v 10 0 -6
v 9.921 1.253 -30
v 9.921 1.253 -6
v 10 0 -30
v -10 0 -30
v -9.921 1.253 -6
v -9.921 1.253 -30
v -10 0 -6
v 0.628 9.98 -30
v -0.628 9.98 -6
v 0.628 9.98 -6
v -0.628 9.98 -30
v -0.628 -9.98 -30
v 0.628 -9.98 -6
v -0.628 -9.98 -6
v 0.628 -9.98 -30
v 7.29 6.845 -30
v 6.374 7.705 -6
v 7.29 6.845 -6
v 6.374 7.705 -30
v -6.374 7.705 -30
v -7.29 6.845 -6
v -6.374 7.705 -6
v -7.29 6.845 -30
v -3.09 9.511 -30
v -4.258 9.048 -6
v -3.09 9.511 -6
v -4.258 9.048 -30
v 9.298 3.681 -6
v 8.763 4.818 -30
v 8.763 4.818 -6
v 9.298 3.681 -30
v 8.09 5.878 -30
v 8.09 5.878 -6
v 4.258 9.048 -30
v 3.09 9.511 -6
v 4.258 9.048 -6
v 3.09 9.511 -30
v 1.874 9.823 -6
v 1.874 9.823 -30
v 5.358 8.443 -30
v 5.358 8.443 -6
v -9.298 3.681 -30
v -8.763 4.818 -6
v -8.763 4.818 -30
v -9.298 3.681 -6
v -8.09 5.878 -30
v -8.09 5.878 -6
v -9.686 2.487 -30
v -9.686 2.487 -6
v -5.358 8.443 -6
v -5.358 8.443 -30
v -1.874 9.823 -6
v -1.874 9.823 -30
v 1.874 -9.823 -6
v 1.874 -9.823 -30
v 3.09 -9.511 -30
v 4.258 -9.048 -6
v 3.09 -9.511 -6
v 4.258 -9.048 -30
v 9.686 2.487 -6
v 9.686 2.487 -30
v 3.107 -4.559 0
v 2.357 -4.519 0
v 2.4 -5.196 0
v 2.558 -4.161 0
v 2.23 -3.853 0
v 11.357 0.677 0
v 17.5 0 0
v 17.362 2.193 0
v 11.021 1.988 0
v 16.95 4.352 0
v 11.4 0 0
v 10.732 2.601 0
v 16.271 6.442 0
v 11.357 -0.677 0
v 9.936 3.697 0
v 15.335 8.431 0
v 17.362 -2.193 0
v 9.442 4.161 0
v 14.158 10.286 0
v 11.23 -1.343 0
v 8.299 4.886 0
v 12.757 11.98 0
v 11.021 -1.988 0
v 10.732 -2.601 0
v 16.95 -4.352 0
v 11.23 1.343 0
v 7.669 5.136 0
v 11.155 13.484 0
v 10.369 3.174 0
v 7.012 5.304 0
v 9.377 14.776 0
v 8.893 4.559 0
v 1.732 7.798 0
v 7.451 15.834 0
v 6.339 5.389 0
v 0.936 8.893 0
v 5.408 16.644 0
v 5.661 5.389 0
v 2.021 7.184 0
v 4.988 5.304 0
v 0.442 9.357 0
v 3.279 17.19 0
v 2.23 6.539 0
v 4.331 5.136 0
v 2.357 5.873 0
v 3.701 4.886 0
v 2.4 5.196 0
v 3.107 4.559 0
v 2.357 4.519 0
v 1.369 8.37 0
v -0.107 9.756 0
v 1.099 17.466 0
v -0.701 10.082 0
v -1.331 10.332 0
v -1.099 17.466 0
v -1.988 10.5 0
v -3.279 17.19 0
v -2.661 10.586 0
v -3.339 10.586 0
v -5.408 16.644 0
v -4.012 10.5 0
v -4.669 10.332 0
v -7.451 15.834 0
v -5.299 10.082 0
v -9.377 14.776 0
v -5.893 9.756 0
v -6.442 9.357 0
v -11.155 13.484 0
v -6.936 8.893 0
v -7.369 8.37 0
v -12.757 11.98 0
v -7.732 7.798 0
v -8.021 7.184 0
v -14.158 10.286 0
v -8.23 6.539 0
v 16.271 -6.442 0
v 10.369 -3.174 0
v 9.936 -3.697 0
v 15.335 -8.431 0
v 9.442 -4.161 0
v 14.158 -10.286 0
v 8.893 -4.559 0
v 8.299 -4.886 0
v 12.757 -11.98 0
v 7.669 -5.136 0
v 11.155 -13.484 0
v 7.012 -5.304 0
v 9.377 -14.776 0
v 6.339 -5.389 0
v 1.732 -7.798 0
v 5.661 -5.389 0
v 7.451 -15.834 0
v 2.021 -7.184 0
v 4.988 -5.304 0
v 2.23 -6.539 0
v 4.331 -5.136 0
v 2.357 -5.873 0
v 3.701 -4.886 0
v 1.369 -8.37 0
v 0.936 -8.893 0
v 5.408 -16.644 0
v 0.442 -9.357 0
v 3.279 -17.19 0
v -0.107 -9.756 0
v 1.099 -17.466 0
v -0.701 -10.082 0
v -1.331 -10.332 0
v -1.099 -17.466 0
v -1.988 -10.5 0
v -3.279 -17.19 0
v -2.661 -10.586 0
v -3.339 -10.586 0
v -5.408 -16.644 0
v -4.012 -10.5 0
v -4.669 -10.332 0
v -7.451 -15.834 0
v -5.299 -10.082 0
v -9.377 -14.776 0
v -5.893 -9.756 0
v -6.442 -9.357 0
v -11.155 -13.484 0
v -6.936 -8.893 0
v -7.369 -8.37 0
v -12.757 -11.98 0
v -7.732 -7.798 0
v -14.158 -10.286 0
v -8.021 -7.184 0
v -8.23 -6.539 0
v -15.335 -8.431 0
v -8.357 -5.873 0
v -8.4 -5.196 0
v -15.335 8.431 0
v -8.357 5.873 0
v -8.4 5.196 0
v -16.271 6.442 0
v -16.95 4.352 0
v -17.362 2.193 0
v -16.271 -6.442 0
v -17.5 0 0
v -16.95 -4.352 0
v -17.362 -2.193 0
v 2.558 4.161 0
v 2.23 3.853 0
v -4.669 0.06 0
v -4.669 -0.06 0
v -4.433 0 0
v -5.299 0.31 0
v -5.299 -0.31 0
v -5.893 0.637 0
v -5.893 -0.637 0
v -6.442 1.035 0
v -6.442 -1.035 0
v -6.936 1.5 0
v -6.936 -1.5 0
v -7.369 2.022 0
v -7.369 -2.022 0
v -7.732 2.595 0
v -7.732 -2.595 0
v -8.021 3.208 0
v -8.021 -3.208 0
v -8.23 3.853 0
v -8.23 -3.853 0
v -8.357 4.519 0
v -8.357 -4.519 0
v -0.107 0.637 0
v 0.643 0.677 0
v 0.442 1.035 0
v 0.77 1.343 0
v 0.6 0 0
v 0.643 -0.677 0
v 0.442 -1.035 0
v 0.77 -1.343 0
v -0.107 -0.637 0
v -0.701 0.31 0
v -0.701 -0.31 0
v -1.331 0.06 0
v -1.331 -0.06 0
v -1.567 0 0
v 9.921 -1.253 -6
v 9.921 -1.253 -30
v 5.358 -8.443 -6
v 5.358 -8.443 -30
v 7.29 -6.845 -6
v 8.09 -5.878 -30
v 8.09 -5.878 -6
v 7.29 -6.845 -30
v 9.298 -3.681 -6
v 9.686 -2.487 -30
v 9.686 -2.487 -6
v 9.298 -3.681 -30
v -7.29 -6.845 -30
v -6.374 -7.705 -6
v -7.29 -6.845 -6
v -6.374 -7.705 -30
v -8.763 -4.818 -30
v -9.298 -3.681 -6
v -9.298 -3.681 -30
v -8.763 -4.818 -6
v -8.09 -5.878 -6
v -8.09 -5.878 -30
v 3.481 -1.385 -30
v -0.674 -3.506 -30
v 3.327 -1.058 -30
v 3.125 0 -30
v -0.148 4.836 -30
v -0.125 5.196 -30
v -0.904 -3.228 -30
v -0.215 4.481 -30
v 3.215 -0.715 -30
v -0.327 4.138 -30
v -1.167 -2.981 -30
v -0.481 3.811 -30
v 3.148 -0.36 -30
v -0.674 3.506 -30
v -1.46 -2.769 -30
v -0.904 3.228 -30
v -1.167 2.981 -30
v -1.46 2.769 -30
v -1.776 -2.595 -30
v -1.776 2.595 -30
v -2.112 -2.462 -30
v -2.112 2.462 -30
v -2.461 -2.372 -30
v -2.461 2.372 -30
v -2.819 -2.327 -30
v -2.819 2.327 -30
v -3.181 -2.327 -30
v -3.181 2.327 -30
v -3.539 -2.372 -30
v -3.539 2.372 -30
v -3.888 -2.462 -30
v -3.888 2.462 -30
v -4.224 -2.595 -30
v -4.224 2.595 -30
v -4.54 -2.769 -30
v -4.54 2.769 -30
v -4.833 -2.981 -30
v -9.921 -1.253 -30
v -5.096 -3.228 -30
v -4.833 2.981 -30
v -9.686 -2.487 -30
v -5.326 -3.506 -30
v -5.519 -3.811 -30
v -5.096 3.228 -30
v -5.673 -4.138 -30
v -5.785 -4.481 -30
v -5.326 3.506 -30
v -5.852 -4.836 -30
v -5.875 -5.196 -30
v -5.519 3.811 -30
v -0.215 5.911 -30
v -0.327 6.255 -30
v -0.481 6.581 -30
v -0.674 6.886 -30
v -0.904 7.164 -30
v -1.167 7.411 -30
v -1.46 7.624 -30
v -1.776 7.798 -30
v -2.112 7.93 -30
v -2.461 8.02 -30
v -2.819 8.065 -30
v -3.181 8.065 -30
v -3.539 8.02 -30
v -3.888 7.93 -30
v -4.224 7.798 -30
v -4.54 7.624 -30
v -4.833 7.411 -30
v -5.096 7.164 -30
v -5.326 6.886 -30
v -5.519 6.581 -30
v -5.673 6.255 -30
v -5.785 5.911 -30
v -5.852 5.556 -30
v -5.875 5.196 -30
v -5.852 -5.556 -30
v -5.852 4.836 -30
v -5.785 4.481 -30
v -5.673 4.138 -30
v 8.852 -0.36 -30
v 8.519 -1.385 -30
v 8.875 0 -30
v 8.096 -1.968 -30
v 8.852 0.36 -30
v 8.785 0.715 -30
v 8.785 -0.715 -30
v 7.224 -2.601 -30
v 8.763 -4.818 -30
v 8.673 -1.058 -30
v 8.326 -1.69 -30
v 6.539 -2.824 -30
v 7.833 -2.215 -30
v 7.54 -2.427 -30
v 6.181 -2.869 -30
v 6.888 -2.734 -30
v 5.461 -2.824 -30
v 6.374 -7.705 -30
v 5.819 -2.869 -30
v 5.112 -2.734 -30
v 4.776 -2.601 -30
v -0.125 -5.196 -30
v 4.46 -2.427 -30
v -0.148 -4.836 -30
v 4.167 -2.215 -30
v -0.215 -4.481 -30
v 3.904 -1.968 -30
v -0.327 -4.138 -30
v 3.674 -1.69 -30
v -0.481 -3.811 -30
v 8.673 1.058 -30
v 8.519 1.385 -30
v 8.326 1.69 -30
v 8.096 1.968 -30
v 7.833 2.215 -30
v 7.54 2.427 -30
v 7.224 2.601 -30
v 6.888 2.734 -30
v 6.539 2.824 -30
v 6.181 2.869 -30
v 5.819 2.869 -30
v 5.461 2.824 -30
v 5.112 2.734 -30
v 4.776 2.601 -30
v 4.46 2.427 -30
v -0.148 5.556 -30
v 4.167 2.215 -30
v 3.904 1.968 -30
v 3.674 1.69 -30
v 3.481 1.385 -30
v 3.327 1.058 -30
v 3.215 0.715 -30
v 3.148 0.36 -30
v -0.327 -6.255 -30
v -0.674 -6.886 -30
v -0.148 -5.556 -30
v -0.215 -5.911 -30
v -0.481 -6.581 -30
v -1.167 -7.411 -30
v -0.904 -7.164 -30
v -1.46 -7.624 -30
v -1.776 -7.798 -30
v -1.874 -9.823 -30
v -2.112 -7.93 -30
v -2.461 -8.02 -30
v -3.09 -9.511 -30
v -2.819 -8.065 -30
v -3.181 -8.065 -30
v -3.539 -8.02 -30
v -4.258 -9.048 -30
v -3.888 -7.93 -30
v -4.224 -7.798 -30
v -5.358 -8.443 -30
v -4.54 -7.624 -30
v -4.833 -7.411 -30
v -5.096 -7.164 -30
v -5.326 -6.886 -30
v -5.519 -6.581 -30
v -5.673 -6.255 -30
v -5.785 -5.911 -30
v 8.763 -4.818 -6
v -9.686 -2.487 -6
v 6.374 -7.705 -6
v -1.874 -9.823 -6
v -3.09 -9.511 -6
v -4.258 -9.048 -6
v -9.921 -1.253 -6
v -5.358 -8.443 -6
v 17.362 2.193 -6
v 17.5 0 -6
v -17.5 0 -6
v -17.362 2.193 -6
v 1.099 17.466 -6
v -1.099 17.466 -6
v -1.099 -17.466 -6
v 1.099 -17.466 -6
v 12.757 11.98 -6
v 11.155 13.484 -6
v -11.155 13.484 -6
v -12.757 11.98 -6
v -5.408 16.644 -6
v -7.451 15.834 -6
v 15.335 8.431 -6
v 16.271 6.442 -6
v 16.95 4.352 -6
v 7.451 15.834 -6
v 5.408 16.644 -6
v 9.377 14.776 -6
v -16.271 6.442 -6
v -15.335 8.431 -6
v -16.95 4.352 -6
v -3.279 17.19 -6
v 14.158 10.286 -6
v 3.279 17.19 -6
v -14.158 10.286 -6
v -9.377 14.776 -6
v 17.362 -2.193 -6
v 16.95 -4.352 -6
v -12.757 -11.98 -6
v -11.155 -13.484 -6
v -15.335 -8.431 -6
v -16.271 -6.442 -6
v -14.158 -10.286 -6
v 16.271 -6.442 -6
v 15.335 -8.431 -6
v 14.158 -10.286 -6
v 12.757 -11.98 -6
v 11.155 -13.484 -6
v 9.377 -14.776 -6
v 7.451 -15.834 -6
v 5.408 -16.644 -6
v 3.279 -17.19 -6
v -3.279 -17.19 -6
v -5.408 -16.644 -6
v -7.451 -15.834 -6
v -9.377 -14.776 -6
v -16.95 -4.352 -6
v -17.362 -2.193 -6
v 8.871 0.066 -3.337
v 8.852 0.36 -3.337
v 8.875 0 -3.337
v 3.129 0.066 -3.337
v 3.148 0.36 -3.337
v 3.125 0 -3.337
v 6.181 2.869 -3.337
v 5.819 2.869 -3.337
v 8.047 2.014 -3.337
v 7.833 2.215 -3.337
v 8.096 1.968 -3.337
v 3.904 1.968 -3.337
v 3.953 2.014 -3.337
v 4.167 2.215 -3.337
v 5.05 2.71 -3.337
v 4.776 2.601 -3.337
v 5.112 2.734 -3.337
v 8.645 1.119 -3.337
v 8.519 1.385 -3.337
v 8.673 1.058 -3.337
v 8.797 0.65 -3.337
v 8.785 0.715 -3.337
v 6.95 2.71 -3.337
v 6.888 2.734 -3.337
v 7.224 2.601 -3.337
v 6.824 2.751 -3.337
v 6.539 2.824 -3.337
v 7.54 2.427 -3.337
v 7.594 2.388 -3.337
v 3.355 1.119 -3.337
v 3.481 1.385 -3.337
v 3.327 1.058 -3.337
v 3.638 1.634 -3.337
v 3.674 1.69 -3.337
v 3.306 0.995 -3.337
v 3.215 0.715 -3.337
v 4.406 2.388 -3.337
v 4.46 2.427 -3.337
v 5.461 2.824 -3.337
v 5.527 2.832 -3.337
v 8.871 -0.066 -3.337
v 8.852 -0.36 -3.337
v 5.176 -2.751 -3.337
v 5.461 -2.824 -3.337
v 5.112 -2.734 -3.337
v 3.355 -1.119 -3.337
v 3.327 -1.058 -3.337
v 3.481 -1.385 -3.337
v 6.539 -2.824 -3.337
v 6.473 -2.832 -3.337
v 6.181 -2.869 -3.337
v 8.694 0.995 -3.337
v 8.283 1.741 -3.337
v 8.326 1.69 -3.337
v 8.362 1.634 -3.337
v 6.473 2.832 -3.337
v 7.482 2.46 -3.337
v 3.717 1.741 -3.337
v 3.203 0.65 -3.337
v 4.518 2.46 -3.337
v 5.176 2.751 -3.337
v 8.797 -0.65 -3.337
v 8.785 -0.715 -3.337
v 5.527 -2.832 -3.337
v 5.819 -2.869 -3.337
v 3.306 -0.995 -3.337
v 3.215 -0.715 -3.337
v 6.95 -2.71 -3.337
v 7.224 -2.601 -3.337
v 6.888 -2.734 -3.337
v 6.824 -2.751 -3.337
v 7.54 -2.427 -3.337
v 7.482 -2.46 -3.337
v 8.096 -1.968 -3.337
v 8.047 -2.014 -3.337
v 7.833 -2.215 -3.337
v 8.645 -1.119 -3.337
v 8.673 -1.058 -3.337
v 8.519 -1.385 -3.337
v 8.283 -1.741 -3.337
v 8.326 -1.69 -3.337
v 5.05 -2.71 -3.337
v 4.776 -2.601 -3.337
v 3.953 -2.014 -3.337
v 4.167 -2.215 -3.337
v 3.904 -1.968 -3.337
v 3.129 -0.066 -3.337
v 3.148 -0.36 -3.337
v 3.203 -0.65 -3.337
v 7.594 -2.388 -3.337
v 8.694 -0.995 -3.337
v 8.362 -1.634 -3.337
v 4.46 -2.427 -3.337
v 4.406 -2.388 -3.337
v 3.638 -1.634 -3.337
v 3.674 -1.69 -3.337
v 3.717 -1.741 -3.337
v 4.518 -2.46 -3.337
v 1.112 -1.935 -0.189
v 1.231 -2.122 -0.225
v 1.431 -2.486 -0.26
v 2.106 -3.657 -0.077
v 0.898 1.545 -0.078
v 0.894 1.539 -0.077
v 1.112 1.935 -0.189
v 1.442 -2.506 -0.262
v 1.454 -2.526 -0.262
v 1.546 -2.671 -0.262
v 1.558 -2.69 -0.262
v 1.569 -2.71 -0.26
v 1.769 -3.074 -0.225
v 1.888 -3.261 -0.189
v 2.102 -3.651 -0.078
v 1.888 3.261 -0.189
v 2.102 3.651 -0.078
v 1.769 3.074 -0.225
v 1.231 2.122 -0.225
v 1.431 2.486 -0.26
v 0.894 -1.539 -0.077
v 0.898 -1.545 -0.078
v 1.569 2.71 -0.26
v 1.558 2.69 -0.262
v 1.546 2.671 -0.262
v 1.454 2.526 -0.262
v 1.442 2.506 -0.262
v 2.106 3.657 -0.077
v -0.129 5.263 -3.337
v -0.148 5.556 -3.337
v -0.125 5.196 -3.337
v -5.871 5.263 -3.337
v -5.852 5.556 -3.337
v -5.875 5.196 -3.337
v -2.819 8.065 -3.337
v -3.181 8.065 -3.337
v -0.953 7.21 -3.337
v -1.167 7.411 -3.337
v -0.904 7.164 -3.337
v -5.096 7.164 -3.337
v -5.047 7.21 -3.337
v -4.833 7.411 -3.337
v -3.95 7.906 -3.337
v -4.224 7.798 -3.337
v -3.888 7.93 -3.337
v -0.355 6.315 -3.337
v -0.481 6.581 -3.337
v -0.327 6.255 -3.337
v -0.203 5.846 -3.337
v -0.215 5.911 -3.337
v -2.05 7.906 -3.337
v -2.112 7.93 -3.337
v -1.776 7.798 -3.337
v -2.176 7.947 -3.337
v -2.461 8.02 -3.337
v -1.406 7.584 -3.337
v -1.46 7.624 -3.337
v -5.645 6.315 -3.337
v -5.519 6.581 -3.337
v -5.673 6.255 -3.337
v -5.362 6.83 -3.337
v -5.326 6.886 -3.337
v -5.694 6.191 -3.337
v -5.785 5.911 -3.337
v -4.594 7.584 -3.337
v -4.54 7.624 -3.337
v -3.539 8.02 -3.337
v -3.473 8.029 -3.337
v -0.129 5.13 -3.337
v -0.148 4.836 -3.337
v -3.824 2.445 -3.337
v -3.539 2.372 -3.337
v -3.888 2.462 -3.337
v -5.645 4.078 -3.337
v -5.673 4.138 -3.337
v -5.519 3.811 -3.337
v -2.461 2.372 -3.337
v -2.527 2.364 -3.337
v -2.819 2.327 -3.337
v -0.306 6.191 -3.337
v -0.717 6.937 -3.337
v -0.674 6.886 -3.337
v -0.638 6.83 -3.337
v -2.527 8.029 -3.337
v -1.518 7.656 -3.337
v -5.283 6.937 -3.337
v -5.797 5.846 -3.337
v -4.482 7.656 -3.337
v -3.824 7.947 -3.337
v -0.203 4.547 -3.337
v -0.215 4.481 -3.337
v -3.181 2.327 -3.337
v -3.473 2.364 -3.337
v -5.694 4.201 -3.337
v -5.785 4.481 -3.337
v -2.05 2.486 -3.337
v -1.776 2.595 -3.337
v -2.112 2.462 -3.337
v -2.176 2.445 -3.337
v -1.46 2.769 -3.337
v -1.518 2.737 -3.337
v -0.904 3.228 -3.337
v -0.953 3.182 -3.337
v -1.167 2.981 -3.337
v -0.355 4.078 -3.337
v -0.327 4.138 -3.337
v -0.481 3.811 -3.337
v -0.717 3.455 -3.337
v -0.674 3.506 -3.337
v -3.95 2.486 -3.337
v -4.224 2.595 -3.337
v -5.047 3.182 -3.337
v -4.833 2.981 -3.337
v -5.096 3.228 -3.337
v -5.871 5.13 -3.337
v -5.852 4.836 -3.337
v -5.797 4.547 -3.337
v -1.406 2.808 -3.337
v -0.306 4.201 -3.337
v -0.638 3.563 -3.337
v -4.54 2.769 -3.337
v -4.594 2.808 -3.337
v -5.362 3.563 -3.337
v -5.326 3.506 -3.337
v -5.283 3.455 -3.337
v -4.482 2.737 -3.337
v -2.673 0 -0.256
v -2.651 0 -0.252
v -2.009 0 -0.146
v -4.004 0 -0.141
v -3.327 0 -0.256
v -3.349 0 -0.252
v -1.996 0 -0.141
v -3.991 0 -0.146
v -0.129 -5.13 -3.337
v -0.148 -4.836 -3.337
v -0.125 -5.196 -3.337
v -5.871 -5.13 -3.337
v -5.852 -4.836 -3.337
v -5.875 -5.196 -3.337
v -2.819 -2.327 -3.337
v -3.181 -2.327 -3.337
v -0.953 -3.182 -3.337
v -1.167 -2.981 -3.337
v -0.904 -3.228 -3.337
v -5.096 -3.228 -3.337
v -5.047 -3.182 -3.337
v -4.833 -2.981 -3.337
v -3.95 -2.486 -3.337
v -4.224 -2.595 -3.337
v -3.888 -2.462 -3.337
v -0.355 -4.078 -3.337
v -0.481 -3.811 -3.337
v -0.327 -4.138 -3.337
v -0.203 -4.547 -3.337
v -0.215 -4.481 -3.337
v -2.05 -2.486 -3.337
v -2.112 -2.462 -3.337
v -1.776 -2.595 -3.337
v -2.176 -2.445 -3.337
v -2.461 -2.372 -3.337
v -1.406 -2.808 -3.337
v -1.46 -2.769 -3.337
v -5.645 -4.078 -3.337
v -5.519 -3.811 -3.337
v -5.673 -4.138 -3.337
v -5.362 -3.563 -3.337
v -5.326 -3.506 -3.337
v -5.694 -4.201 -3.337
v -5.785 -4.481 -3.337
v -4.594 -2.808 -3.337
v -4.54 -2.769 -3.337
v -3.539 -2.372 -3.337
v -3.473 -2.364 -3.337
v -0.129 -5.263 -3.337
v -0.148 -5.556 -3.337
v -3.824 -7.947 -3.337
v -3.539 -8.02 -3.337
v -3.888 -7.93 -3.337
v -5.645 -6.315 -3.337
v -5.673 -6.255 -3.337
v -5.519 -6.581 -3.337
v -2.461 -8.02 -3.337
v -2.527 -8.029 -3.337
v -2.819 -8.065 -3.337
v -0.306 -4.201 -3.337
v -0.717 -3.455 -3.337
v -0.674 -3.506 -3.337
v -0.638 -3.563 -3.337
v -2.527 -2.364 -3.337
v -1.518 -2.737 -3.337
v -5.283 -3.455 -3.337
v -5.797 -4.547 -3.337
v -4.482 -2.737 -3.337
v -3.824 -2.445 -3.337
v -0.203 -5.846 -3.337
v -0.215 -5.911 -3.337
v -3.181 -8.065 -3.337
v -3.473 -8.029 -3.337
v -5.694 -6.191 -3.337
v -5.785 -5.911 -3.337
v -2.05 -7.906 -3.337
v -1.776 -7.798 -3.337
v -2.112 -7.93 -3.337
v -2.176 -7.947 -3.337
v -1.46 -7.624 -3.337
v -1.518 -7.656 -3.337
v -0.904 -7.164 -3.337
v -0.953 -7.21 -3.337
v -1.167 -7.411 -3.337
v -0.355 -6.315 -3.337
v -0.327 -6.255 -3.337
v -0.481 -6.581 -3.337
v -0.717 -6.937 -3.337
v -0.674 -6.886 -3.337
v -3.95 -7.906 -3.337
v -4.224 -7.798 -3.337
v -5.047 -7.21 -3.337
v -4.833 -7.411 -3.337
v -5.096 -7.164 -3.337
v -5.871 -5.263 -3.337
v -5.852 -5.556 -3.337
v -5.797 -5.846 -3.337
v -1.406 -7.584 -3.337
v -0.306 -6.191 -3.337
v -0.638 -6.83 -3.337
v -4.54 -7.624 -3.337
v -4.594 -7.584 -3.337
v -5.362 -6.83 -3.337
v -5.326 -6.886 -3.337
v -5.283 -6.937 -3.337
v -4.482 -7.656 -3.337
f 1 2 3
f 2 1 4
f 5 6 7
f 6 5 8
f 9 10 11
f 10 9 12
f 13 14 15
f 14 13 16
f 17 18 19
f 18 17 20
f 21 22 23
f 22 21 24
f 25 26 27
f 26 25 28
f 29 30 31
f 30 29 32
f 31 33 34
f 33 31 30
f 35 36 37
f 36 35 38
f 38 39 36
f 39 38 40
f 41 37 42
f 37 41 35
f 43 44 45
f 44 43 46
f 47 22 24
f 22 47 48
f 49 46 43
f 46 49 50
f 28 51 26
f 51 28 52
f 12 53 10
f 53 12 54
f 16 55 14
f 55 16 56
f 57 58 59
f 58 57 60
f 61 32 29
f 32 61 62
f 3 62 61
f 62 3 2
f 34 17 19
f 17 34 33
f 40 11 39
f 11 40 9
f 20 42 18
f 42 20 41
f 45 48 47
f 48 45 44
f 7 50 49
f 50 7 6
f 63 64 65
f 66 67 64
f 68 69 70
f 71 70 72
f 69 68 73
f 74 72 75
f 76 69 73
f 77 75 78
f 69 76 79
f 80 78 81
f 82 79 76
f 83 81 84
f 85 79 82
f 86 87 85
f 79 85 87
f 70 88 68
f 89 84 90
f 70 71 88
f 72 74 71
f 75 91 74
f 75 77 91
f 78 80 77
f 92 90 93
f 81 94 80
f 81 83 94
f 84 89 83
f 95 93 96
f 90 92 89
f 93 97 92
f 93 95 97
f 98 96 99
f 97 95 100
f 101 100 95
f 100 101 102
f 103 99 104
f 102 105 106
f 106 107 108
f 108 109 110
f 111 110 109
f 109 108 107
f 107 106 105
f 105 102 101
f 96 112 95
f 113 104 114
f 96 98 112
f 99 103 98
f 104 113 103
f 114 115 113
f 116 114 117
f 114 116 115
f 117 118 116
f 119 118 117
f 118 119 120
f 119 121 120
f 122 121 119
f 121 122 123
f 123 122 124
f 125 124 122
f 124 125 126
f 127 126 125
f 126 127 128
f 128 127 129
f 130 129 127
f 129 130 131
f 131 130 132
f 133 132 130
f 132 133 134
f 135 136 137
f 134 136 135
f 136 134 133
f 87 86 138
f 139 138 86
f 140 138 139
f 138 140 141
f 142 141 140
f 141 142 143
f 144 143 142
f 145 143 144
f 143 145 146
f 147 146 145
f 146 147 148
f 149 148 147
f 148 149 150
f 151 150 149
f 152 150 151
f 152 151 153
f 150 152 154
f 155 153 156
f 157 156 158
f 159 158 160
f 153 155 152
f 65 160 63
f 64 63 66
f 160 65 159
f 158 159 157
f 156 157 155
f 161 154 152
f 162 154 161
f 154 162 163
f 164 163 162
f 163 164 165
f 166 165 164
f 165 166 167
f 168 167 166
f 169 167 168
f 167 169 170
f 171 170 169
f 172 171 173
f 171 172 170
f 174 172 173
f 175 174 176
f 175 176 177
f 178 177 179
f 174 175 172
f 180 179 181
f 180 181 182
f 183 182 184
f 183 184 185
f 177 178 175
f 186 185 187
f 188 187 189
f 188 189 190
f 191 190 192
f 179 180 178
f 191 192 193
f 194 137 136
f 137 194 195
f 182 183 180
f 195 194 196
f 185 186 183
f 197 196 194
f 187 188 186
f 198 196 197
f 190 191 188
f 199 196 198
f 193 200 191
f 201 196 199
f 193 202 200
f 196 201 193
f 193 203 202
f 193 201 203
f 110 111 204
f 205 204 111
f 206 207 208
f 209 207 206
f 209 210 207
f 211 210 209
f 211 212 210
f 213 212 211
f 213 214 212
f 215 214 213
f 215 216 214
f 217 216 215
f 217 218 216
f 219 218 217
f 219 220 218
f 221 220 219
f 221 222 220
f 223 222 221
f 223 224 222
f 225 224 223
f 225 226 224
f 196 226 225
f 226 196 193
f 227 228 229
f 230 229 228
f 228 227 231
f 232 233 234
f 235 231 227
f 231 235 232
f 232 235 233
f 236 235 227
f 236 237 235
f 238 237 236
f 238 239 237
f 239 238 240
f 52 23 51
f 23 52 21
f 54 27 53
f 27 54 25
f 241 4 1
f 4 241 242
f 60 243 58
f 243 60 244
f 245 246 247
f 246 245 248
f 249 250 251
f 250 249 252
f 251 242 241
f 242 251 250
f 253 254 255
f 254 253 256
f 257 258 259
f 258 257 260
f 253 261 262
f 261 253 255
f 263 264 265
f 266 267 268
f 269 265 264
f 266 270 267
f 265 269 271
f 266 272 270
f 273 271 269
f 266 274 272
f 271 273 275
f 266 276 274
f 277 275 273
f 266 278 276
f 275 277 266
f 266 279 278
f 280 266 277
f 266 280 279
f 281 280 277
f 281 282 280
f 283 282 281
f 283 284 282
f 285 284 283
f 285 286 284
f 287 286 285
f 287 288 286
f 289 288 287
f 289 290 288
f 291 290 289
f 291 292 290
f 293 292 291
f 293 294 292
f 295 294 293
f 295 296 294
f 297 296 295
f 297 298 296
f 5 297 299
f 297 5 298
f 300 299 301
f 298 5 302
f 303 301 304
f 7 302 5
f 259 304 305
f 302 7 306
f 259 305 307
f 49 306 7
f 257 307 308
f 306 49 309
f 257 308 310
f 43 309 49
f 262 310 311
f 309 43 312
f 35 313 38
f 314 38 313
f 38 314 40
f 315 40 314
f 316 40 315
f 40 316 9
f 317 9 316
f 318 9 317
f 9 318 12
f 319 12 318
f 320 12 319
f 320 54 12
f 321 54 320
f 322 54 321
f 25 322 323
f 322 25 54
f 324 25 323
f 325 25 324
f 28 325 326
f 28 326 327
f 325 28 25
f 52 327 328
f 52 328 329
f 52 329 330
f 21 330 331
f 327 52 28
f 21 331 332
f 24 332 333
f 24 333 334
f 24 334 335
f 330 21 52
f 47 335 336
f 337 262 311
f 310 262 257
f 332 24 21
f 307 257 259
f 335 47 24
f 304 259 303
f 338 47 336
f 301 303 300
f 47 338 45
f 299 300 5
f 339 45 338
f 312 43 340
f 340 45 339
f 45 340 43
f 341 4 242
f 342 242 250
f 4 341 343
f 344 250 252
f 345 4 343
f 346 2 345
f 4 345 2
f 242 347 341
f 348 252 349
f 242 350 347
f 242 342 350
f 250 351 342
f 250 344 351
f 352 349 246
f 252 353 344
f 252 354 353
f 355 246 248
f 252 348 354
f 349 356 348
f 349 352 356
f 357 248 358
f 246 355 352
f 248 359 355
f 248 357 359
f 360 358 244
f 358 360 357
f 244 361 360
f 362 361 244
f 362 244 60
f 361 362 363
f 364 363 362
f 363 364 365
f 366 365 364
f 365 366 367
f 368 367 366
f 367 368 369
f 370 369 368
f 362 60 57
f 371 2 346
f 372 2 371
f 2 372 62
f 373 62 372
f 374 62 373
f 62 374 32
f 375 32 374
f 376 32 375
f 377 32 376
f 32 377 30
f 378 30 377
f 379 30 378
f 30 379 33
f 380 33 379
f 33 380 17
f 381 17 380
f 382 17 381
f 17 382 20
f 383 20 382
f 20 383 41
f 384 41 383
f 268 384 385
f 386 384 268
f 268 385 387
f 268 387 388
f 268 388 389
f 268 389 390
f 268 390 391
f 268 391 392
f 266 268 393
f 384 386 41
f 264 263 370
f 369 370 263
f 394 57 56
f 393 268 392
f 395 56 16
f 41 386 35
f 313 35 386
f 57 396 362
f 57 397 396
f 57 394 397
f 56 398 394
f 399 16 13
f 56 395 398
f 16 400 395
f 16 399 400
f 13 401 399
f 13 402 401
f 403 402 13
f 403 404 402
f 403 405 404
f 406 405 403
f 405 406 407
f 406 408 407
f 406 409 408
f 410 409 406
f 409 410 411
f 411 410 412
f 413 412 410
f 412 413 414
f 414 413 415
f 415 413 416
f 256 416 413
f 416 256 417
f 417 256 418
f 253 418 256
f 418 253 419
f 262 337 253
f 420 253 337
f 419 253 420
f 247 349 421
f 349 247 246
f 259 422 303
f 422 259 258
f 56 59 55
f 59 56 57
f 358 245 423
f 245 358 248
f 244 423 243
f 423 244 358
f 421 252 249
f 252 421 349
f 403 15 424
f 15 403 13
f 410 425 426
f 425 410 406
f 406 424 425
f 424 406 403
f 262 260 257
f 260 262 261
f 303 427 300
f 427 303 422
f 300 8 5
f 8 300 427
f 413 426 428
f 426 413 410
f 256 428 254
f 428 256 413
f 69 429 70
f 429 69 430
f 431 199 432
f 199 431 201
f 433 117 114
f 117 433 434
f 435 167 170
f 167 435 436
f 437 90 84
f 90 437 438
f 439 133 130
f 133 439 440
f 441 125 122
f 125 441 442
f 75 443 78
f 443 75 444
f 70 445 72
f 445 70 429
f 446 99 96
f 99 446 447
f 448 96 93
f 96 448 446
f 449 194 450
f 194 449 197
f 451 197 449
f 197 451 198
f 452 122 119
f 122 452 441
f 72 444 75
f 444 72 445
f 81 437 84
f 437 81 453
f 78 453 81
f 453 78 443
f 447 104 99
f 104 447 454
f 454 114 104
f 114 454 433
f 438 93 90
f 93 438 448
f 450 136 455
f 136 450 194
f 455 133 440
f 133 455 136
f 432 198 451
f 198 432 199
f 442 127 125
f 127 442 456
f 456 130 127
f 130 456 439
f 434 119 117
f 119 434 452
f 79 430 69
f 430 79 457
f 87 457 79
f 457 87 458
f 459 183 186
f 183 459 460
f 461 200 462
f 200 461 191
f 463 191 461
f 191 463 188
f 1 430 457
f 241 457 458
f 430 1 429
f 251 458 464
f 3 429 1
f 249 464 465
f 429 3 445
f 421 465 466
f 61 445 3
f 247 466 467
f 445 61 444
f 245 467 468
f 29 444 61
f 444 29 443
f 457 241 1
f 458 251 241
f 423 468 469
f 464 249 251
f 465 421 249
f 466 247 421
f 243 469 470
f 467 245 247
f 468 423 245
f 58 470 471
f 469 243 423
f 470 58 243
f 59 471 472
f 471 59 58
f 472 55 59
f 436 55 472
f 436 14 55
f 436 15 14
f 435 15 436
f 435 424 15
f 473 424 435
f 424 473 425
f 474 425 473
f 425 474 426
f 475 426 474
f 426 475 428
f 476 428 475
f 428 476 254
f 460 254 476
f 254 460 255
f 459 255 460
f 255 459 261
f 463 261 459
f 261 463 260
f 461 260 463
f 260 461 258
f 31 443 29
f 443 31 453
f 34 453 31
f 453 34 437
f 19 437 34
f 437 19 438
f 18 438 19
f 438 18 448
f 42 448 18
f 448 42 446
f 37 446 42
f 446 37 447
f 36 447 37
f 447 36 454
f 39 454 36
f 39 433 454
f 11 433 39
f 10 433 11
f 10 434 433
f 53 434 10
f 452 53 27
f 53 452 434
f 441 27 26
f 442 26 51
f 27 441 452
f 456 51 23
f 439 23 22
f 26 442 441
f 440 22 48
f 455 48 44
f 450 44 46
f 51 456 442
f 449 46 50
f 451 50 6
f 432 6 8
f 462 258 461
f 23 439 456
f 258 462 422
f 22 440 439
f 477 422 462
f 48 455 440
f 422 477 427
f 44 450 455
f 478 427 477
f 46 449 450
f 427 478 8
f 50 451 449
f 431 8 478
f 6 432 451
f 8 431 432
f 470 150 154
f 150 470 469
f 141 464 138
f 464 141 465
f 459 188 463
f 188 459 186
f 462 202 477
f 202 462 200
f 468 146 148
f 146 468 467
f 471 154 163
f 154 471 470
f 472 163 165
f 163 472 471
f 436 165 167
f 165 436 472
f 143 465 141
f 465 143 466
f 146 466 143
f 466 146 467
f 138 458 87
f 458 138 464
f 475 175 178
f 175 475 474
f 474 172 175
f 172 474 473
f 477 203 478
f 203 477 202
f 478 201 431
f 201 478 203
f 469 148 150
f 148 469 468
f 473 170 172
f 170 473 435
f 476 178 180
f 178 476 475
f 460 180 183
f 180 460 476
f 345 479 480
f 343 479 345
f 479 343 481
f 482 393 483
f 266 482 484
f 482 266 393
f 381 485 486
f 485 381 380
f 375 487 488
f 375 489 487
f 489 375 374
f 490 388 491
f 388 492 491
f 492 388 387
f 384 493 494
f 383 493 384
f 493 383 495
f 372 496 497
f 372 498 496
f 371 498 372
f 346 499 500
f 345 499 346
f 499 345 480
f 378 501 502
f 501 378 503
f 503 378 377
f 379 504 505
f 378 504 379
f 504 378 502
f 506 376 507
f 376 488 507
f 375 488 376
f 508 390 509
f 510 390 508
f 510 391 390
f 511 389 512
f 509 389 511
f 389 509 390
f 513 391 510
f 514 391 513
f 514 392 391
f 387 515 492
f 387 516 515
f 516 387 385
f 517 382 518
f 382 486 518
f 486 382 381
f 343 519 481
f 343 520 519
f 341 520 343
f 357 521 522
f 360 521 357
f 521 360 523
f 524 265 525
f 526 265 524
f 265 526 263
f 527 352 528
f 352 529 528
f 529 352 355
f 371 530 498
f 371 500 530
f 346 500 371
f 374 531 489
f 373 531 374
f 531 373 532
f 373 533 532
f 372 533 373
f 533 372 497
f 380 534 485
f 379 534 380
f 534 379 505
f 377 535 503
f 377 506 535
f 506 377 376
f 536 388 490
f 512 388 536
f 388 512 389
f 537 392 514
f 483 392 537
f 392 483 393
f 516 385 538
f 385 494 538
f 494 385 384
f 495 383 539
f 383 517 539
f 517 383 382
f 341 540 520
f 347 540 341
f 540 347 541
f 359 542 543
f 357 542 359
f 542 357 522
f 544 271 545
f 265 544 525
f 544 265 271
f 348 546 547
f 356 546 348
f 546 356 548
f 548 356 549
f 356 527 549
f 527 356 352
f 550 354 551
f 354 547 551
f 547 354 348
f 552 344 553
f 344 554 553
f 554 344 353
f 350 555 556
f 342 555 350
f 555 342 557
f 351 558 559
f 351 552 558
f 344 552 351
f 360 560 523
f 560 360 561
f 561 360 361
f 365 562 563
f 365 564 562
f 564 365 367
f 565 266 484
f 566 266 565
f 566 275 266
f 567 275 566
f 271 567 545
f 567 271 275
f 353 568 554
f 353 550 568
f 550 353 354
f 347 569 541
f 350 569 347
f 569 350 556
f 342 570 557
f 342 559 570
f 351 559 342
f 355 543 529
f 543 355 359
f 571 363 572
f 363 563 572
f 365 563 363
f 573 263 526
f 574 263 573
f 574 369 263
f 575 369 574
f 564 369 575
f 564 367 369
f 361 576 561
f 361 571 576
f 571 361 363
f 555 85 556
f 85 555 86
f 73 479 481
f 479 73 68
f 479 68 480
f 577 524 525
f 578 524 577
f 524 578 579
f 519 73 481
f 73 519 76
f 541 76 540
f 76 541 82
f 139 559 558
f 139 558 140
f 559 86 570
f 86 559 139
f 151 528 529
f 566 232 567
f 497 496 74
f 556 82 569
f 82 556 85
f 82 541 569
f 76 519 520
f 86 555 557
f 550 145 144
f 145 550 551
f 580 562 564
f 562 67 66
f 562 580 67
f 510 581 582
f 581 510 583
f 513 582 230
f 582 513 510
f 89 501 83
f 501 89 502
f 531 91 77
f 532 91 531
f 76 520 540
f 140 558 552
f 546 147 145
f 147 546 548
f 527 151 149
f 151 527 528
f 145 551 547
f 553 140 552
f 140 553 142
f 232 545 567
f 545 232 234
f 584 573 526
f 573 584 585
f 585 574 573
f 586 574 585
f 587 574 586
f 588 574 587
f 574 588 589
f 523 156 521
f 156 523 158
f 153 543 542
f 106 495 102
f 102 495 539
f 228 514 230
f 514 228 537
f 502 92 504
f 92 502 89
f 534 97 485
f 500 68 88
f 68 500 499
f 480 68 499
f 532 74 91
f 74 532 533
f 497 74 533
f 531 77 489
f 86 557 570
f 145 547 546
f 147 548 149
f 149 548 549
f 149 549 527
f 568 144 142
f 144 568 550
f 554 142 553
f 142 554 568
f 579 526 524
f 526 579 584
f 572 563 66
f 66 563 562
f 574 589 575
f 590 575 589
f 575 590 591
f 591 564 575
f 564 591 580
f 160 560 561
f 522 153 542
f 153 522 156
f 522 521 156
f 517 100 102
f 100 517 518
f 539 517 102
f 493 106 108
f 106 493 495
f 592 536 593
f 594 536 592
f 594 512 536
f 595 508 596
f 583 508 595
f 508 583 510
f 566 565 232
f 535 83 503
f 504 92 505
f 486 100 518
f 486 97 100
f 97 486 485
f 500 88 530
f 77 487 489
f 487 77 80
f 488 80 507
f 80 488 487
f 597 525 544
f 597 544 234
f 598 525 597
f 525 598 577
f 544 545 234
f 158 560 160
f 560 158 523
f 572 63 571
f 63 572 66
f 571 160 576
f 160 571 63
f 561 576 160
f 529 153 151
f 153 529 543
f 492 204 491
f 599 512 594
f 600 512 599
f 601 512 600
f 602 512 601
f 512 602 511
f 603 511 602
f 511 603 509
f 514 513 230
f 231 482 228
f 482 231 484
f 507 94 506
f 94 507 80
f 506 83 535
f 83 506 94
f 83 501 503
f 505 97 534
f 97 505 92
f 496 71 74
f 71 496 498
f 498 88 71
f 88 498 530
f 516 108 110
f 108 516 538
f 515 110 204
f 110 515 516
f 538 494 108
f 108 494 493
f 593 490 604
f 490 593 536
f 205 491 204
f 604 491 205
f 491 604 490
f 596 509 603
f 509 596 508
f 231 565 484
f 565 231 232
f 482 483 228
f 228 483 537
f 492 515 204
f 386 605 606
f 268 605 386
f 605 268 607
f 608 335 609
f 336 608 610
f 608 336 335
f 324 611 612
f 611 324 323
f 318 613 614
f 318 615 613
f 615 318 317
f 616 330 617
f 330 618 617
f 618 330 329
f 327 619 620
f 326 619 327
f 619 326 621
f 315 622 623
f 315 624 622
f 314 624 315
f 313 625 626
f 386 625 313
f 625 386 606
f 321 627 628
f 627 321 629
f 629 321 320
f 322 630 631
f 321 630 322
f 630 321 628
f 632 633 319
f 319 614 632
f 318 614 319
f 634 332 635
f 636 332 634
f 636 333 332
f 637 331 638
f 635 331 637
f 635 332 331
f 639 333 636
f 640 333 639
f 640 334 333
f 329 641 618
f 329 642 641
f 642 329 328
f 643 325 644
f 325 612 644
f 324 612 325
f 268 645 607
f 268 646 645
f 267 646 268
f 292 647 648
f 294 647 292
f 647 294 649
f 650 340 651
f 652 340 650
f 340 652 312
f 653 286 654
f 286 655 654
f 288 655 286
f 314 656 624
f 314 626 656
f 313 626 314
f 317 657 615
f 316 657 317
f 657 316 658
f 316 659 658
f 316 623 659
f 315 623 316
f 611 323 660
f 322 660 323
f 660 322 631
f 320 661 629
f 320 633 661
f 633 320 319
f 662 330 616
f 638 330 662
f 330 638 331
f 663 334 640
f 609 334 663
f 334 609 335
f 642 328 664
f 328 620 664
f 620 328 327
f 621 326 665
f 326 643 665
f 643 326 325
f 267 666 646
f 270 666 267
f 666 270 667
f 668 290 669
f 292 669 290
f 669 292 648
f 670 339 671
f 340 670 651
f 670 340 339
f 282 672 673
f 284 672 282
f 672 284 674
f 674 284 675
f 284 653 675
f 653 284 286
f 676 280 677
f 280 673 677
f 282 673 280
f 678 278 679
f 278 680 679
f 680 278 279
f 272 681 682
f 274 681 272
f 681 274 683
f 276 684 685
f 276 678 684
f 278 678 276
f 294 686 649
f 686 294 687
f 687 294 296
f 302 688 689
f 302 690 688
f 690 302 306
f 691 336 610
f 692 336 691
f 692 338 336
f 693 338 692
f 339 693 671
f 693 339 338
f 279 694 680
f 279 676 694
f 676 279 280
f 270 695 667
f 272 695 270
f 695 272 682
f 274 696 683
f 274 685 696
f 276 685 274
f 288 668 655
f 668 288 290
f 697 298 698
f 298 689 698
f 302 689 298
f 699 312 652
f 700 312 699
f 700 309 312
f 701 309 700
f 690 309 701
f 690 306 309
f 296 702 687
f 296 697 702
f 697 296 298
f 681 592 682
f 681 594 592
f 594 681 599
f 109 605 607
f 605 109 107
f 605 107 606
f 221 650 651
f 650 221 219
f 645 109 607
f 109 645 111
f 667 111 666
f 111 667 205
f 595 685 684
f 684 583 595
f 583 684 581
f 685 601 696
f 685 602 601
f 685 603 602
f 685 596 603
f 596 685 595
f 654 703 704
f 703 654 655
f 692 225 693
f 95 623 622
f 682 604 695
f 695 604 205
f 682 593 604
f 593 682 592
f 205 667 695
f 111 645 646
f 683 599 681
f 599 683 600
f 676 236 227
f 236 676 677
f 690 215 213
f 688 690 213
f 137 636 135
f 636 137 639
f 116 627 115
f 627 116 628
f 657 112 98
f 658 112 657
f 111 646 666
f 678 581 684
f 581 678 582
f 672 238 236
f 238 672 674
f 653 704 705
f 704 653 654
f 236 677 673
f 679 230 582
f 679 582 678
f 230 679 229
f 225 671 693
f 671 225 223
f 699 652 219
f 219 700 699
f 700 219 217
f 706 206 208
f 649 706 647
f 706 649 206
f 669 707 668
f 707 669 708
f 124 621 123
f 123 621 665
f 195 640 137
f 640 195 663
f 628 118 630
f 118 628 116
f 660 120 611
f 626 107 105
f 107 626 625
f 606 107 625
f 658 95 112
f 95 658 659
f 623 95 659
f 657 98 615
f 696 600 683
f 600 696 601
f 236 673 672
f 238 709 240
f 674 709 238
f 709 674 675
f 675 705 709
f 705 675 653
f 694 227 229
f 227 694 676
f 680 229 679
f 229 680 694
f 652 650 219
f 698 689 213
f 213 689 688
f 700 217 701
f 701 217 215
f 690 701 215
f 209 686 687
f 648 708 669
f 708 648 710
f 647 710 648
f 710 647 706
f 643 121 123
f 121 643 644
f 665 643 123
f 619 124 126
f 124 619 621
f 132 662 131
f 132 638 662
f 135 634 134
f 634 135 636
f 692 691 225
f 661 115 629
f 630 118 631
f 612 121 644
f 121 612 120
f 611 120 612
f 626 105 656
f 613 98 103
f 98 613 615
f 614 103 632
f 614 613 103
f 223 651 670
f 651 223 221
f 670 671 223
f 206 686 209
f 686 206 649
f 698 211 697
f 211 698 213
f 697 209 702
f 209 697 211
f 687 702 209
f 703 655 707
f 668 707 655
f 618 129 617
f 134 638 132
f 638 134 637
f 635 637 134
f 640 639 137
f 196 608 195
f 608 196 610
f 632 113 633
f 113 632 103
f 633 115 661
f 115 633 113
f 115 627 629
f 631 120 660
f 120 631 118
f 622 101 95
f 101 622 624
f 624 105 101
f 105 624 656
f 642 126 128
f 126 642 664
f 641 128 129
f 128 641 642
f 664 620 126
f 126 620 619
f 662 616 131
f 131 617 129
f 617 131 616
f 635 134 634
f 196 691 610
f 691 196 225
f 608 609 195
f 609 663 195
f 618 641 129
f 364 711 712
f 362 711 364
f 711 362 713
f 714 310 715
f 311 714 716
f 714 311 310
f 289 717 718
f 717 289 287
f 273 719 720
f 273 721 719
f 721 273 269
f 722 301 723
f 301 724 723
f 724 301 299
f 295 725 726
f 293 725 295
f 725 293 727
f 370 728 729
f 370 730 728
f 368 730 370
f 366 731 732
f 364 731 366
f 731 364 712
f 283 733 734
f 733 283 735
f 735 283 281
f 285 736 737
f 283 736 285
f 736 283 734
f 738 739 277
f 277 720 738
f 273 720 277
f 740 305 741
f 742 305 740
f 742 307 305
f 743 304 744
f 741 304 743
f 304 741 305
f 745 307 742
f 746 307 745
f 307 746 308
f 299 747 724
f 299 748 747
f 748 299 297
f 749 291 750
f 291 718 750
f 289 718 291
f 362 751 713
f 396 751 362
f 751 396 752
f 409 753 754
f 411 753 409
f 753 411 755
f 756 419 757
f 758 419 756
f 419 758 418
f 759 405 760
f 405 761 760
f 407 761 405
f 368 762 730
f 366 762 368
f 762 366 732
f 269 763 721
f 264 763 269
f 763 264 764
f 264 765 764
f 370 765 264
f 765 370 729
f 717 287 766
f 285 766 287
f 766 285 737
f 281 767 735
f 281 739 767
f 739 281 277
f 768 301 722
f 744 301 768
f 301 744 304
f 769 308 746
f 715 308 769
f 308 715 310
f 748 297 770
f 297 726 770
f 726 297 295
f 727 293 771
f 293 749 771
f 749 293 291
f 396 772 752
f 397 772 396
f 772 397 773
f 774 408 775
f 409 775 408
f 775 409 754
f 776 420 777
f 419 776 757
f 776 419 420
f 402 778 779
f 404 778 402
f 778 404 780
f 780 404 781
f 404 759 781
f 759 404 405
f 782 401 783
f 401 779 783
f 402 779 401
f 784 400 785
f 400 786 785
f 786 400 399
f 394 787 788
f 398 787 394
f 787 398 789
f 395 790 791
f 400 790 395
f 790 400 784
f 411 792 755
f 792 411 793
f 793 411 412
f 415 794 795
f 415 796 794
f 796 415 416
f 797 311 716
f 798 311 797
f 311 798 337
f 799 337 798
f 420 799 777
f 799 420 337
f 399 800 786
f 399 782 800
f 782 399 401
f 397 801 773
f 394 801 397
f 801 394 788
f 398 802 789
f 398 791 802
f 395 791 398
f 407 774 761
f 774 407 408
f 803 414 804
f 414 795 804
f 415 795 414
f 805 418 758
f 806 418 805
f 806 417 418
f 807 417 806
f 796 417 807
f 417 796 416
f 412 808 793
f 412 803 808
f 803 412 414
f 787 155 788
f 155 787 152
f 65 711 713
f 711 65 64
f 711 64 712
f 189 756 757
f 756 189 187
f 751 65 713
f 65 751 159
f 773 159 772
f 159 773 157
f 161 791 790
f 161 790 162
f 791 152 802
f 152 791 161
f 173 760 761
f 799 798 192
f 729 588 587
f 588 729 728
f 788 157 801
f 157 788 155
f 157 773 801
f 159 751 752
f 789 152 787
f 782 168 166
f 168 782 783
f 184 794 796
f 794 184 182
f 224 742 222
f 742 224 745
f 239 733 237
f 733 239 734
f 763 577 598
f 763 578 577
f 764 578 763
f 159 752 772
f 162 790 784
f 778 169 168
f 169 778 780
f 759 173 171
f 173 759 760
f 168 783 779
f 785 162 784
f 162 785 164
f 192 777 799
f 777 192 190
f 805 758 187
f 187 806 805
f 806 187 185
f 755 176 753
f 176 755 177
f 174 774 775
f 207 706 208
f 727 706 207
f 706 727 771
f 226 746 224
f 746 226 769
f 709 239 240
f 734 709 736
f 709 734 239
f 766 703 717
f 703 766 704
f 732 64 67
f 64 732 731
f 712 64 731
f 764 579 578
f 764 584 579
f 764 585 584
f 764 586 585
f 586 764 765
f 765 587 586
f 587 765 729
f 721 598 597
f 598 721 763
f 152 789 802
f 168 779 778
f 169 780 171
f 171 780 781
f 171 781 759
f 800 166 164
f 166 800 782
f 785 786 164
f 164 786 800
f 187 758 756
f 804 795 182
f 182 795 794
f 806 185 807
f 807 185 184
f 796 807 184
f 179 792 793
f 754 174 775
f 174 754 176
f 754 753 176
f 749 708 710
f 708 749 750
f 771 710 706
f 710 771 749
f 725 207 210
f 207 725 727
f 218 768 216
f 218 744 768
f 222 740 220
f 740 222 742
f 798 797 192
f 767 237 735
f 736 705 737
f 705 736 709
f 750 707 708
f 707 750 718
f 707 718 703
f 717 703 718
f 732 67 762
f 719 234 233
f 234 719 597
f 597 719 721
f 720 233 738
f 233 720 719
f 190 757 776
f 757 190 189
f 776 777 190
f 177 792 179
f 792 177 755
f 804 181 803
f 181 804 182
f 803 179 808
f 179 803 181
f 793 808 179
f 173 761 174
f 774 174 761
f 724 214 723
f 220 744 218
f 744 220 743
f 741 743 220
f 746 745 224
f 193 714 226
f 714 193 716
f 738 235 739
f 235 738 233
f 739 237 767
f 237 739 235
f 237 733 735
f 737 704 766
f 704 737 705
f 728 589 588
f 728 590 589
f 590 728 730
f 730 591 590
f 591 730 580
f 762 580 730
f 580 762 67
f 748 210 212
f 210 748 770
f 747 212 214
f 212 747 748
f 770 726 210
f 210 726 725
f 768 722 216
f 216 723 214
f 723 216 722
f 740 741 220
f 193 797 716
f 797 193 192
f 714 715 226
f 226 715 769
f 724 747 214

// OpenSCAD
$fn = 50;


difference() {
	union() {
		translate(v = [0, 0, -30.0000000000]) {
			cylinder(h = 30, r = 10.0000000000);
		}
		translate(v = [0, 0, -6.0000000000]) {
			cylinder(h = 6, r = 17.5000000000);
		}
	}
	union() {
		translate(v = [6.0000000000, 0.0000000000, 0]) {
			rotate(a = [0, 0, 0]) {
				difference() {
					union() {
						#translate(v = [0, 0, -30.0000000000]) {
							cylinder(h = 30, r = 2.6000000000);
						}
						#translate(v = [0, 0, -30.0000000000]) {
							cylinder(h = 30, r = 2.8750000000);
						}
						#translate(v = [0, 0, -3.7000000000]) {
							cylinder(h = 3.7000000000, r = 10.0000000000, r1 = 2.6000000000, r2 = 5.4000000000);
						}
						#translate(v = [0, 0, -30.0000000000]) {
							cylinder(h = 30, r = 2.6000000000);
						}
					}
					union();
				}
			}
		}
		translate(v = [-3.0000000000, 5.1961524227, 0]) {
			rotate(a = [0, 0, 0]) {
				difference() {
					union() {
						#translate(v = [0, 0, -30.0000000000]) {
							cylinder(h = 30, r = 2.6000000000);
						}
						#translate(v = [0, 0, -30.0000000000]) {
							cylinder(h = 30, r = 2.8750000000);
						}
						#translate(v = [0, 0, -3.7000000000]) {
							cylinder(h = 3.7000000000, r = 10.0000000000, r1 = 2.6000000000, r2 = 5.4000000000);
						}
						#translate(v = [0, 0, -30.0000000000]) {
							cylinder(h = 30, r = 2.6000000000);
						}
					}
					union();
				}
			}
		}
		translate(v = [-3.0000000000, -5.1961524227, 0]) {
			rotate(a = [0, 0, 0]) {
				difference() {
					union() {
						#translate(v = [0, 0, -30.0000000000]) {
							cylinder(h = 30, r = 2.6000000000);
						}
						#translate(v = [0, 0, -30.0000000000]) {
							cylinder(h = 30, r = 2.8750000000);
						}
						#translate(v = [0, 0, -3.7000000000]) {
							cylinder(h = 3.7000000000, r = 10.0000000000, r1 = 2.6000000000, r2 = 5.4000000000);
						}
						#translate(v = [0, 0, -30.0000000000]) {
							cylinder(h = 30, r = 2.6000000000);
						}
					}
					union();
				}
			}
		}
	}
}
